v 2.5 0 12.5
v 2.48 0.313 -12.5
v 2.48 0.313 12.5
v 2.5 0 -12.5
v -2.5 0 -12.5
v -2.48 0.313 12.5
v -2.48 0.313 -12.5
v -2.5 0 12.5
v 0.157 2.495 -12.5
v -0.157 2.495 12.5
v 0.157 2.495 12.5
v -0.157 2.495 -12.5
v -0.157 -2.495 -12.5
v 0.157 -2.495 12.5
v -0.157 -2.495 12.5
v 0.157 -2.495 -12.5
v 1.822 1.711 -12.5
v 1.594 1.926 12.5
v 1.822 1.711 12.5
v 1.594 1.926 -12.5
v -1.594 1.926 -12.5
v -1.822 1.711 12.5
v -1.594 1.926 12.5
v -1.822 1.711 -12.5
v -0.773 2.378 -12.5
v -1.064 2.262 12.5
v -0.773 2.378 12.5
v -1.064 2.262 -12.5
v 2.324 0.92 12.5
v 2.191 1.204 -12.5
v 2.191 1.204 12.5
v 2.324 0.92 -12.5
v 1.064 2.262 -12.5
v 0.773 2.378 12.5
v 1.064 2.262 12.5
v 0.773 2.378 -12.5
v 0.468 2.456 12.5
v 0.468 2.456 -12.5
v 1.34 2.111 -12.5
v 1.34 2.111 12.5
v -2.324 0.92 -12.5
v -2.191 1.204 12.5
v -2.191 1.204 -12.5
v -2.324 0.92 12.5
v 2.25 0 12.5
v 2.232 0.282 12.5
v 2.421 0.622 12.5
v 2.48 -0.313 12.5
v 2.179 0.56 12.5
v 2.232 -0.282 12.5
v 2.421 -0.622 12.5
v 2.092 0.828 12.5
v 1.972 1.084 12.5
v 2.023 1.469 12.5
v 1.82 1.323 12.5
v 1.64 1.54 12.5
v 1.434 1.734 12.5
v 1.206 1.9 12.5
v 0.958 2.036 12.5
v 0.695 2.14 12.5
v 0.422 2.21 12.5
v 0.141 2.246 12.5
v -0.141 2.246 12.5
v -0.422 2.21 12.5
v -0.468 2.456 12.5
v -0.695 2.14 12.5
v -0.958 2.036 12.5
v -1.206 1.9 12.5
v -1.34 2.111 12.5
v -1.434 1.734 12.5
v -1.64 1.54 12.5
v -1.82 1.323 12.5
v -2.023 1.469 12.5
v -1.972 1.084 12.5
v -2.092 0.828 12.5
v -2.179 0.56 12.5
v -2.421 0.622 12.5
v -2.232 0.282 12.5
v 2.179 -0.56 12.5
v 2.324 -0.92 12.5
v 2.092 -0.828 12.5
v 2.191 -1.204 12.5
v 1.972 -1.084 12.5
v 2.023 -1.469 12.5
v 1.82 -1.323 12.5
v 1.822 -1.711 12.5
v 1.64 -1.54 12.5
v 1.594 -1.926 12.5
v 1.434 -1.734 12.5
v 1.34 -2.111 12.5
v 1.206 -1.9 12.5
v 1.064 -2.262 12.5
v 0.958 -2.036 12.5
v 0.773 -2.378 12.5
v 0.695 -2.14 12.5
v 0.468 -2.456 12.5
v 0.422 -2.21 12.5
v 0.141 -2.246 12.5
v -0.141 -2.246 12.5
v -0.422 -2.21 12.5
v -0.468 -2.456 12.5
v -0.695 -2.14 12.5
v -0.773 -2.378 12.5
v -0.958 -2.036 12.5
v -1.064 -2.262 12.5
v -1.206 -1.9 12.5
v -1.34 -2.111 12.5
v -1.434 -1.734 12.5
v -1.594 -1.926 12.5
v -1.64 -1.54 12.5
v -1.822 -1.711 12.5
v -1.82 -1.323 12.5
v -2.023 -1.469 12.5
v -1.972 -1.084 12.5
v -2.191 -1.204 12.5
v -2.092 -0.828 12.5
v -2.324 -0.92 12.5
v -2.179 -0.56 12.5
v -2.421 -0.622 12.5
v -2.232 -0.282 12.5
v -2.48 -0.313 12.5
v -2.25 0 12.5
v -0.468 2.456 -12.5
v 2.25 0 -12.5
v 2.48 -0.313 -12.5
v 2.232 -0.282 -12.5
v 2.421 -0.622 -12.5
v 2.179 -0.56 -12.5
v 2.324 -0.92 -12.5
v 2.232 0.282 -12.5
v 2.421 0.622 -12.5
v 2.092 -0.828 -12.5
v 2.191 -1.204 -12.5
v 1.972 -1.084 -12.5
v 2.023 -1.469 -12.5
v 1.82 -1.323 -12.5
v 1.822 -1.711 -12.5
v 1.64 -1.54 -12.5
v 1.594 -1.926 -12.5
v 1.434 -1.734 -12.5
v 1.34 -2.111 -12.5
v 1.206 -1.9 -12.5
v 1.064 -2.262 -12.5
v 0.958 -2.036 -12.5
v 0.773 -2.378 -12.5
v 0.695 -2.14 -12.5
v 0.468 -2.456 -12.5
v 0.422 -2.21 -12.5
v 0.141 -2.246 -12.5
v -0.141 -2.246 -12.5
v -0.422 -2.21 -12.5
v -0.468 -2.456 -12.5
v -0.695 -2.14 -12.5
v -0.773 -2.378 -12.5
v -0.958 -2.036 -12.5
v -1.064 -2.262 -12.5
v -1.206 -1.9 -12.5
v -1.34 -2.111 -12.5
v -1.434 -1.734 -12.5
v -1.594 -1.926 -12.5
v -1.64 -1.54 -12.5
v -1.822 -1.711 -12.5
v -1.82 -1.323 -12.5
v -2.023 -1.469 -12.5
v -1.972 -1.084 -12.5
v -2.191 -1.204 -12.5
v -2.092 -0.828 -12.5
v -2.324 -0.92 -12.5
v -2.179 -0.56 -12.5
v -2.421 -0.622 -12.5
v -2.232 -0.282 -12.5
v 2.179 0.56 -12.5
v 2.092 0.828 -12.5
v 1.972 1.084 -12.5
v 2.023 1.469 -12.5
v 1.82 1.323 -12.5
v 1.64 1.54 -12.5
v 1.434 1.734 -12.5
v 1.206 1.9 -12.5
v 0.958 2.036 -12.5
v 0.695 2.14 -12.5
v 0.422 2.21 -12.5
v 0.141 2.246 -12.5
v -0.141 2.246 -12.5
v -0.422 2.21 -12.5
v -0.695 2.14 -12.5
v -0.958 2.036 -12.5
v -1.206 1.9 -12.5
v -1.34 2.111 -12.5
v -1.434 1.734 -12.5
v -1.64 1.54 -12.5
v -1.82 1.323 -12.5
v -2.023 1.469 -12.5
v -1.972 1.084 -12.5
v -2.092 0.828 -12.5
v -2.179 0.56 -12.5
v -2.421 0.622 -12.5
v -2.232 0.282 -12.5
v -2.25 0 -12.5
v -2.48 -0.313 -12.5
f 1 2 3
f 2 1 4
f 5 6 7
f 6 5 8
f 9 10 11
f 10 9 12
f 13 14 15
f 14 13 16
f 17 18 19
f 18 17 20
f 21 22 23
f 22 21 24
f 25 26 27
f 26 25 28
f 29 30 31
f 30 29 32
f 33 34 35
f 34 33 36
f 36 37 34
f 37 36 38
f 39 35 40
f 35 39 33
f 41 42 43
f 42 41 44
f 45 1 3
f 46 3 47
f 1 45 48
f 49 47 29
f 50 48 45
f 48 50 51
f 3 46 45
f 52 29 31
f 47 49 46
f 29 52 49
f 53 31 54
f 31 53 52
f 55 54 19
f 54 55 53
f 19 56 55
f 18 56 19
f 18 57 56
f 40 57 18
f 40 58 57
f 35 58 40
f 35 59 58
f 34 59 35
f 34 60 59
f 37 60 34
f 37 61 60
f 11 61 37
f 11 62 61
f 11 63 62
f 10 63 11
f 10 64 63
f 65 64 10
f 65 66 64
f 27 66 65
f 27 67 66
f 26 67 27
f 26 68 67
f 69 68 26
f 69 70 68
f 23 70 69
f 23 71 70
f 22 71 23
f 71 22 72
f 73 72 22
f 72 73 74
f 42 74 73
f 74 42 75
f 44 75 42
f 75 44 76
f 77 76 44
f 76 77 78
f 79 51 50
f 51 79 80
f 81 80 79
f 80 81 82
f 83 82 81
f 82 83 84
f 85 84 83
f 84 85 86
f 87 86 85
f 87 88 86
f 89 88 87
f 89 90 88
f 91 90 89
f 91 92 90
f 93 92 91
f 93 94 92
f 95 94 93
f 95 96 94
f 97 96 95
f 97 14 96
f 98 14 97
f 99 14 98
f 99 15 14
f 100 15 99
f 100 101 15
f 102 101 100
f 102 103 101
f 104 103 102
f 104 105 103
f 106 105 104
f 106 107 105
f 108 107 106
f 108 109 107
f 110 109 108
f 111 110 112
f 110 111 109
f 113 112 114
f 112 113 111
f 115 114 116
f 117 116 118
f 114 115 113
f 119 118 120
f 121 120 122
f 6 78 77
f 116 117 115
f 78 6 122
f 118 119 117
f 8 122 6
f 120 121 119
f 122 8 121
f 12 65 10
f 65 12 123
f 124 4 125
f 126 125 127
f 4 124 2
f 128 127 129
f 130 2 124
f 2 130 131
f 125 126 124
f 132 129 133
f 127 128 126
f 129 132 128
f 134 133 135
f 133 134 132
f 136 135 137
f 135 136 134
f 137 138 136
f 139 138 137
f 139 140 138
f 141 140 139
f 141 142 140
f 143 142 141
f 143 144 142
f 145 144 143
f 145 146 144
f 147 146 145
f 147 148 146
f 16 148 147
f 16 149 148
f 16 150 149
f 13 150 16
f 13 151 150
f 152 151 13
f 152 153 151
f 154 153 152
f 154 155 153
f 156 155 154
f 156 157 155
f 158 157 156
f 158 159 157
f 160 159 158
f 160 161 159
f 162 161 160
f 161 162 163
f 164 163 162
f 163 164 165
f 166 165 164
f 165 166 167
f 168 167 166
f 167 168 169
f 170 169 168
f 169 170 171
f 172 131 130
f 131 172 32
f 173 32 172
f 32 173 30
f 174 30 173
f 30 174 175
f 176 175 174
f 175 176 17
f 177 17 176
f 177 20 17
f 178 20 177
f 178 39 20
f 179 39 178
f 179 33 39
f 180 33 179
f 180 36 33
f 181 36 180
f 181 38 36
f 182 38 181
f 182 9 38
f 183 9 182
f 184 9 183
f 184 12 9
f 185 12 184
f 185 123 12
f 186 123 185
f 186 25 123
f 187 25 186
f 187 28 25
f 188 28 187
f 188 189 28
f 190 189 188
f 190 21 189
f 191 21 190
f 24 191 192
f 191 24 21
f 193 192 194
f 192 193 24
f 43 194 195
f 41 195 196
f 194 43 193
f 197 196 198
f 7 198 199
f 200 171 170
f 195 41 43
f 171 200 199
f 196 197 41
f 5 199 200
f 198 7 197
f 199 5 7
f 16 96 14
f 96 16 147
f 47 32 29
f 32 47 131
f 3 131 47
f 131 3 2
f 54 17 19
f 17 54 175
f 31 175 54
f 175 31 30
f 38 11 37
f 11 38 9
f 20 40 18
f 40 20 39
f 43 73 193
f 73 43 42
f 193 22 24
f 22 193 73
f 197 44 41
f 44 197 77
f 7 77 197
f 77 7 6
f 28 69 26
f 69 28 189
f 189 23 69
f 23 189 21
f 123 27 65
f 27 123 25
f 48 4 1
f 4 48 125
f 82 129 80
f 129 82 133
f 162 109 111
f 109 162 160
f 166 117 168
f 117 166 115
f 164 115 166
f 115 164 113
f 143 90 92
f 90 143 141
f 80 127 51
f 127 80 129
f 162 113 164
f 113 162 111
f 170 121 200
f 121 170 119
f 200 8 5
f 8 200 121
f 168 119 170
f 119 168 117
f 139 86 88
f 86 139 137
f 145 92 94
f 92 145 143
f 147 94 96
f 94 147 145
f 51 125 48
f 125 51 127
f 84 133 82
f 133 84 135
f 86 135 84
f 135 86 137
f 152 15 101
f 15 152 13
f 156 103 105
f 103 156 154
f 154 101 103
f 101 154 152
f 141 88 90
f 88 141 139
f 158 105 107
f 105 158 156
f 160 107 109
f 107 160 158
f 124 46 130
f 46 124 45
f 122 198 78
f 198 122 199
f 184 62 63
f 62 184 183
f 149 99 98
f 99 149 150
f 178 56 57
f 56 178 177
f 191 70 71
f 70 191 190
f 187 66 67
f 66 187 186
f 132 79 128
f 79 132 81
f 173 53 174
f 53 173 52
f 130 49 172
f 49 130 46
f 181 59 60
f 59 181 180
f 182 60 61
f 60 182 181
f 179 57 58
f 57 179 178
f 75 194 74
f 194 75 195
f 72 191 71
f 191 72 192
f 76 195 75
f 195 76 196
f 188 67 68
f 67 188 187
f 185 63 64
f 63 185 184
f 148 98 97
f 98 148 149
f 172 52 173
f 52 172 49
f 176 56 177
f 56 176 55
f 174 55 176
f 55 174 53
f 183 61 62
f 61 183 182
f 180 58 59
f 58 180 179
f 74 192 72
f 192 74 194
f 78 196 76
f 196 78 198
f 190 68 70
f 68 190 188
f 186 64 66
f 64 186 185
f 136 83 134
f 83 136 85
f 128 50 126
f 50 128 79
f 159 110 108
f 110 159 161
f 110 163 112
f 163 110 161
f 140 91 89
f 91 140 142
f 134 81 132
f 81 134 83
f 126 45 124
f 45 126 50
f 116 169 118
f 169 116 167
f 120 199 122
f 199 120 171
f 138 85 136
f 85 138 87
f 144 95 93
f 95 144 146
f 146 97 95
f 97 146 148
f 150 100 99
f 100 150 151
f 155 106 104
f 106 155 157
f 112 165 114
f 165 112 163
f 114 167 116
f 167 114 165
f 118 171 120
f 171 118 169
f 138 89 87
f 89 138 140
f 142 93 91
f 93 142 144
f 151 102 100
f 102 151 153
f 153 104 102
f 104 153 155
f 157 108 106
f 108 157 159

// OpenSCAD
$fn = 50;


difference() {
	union() {
		translate(v = [0, 0, -12.5000000000]) {
			cylinder(h = 25, r = 2.5000000000);
		}
	}
	union() {
		translate(v = [0, 0, -100.0000000000]) {
			cylinder(h = 200, r = 2.2500000000);
		}
	}
}
